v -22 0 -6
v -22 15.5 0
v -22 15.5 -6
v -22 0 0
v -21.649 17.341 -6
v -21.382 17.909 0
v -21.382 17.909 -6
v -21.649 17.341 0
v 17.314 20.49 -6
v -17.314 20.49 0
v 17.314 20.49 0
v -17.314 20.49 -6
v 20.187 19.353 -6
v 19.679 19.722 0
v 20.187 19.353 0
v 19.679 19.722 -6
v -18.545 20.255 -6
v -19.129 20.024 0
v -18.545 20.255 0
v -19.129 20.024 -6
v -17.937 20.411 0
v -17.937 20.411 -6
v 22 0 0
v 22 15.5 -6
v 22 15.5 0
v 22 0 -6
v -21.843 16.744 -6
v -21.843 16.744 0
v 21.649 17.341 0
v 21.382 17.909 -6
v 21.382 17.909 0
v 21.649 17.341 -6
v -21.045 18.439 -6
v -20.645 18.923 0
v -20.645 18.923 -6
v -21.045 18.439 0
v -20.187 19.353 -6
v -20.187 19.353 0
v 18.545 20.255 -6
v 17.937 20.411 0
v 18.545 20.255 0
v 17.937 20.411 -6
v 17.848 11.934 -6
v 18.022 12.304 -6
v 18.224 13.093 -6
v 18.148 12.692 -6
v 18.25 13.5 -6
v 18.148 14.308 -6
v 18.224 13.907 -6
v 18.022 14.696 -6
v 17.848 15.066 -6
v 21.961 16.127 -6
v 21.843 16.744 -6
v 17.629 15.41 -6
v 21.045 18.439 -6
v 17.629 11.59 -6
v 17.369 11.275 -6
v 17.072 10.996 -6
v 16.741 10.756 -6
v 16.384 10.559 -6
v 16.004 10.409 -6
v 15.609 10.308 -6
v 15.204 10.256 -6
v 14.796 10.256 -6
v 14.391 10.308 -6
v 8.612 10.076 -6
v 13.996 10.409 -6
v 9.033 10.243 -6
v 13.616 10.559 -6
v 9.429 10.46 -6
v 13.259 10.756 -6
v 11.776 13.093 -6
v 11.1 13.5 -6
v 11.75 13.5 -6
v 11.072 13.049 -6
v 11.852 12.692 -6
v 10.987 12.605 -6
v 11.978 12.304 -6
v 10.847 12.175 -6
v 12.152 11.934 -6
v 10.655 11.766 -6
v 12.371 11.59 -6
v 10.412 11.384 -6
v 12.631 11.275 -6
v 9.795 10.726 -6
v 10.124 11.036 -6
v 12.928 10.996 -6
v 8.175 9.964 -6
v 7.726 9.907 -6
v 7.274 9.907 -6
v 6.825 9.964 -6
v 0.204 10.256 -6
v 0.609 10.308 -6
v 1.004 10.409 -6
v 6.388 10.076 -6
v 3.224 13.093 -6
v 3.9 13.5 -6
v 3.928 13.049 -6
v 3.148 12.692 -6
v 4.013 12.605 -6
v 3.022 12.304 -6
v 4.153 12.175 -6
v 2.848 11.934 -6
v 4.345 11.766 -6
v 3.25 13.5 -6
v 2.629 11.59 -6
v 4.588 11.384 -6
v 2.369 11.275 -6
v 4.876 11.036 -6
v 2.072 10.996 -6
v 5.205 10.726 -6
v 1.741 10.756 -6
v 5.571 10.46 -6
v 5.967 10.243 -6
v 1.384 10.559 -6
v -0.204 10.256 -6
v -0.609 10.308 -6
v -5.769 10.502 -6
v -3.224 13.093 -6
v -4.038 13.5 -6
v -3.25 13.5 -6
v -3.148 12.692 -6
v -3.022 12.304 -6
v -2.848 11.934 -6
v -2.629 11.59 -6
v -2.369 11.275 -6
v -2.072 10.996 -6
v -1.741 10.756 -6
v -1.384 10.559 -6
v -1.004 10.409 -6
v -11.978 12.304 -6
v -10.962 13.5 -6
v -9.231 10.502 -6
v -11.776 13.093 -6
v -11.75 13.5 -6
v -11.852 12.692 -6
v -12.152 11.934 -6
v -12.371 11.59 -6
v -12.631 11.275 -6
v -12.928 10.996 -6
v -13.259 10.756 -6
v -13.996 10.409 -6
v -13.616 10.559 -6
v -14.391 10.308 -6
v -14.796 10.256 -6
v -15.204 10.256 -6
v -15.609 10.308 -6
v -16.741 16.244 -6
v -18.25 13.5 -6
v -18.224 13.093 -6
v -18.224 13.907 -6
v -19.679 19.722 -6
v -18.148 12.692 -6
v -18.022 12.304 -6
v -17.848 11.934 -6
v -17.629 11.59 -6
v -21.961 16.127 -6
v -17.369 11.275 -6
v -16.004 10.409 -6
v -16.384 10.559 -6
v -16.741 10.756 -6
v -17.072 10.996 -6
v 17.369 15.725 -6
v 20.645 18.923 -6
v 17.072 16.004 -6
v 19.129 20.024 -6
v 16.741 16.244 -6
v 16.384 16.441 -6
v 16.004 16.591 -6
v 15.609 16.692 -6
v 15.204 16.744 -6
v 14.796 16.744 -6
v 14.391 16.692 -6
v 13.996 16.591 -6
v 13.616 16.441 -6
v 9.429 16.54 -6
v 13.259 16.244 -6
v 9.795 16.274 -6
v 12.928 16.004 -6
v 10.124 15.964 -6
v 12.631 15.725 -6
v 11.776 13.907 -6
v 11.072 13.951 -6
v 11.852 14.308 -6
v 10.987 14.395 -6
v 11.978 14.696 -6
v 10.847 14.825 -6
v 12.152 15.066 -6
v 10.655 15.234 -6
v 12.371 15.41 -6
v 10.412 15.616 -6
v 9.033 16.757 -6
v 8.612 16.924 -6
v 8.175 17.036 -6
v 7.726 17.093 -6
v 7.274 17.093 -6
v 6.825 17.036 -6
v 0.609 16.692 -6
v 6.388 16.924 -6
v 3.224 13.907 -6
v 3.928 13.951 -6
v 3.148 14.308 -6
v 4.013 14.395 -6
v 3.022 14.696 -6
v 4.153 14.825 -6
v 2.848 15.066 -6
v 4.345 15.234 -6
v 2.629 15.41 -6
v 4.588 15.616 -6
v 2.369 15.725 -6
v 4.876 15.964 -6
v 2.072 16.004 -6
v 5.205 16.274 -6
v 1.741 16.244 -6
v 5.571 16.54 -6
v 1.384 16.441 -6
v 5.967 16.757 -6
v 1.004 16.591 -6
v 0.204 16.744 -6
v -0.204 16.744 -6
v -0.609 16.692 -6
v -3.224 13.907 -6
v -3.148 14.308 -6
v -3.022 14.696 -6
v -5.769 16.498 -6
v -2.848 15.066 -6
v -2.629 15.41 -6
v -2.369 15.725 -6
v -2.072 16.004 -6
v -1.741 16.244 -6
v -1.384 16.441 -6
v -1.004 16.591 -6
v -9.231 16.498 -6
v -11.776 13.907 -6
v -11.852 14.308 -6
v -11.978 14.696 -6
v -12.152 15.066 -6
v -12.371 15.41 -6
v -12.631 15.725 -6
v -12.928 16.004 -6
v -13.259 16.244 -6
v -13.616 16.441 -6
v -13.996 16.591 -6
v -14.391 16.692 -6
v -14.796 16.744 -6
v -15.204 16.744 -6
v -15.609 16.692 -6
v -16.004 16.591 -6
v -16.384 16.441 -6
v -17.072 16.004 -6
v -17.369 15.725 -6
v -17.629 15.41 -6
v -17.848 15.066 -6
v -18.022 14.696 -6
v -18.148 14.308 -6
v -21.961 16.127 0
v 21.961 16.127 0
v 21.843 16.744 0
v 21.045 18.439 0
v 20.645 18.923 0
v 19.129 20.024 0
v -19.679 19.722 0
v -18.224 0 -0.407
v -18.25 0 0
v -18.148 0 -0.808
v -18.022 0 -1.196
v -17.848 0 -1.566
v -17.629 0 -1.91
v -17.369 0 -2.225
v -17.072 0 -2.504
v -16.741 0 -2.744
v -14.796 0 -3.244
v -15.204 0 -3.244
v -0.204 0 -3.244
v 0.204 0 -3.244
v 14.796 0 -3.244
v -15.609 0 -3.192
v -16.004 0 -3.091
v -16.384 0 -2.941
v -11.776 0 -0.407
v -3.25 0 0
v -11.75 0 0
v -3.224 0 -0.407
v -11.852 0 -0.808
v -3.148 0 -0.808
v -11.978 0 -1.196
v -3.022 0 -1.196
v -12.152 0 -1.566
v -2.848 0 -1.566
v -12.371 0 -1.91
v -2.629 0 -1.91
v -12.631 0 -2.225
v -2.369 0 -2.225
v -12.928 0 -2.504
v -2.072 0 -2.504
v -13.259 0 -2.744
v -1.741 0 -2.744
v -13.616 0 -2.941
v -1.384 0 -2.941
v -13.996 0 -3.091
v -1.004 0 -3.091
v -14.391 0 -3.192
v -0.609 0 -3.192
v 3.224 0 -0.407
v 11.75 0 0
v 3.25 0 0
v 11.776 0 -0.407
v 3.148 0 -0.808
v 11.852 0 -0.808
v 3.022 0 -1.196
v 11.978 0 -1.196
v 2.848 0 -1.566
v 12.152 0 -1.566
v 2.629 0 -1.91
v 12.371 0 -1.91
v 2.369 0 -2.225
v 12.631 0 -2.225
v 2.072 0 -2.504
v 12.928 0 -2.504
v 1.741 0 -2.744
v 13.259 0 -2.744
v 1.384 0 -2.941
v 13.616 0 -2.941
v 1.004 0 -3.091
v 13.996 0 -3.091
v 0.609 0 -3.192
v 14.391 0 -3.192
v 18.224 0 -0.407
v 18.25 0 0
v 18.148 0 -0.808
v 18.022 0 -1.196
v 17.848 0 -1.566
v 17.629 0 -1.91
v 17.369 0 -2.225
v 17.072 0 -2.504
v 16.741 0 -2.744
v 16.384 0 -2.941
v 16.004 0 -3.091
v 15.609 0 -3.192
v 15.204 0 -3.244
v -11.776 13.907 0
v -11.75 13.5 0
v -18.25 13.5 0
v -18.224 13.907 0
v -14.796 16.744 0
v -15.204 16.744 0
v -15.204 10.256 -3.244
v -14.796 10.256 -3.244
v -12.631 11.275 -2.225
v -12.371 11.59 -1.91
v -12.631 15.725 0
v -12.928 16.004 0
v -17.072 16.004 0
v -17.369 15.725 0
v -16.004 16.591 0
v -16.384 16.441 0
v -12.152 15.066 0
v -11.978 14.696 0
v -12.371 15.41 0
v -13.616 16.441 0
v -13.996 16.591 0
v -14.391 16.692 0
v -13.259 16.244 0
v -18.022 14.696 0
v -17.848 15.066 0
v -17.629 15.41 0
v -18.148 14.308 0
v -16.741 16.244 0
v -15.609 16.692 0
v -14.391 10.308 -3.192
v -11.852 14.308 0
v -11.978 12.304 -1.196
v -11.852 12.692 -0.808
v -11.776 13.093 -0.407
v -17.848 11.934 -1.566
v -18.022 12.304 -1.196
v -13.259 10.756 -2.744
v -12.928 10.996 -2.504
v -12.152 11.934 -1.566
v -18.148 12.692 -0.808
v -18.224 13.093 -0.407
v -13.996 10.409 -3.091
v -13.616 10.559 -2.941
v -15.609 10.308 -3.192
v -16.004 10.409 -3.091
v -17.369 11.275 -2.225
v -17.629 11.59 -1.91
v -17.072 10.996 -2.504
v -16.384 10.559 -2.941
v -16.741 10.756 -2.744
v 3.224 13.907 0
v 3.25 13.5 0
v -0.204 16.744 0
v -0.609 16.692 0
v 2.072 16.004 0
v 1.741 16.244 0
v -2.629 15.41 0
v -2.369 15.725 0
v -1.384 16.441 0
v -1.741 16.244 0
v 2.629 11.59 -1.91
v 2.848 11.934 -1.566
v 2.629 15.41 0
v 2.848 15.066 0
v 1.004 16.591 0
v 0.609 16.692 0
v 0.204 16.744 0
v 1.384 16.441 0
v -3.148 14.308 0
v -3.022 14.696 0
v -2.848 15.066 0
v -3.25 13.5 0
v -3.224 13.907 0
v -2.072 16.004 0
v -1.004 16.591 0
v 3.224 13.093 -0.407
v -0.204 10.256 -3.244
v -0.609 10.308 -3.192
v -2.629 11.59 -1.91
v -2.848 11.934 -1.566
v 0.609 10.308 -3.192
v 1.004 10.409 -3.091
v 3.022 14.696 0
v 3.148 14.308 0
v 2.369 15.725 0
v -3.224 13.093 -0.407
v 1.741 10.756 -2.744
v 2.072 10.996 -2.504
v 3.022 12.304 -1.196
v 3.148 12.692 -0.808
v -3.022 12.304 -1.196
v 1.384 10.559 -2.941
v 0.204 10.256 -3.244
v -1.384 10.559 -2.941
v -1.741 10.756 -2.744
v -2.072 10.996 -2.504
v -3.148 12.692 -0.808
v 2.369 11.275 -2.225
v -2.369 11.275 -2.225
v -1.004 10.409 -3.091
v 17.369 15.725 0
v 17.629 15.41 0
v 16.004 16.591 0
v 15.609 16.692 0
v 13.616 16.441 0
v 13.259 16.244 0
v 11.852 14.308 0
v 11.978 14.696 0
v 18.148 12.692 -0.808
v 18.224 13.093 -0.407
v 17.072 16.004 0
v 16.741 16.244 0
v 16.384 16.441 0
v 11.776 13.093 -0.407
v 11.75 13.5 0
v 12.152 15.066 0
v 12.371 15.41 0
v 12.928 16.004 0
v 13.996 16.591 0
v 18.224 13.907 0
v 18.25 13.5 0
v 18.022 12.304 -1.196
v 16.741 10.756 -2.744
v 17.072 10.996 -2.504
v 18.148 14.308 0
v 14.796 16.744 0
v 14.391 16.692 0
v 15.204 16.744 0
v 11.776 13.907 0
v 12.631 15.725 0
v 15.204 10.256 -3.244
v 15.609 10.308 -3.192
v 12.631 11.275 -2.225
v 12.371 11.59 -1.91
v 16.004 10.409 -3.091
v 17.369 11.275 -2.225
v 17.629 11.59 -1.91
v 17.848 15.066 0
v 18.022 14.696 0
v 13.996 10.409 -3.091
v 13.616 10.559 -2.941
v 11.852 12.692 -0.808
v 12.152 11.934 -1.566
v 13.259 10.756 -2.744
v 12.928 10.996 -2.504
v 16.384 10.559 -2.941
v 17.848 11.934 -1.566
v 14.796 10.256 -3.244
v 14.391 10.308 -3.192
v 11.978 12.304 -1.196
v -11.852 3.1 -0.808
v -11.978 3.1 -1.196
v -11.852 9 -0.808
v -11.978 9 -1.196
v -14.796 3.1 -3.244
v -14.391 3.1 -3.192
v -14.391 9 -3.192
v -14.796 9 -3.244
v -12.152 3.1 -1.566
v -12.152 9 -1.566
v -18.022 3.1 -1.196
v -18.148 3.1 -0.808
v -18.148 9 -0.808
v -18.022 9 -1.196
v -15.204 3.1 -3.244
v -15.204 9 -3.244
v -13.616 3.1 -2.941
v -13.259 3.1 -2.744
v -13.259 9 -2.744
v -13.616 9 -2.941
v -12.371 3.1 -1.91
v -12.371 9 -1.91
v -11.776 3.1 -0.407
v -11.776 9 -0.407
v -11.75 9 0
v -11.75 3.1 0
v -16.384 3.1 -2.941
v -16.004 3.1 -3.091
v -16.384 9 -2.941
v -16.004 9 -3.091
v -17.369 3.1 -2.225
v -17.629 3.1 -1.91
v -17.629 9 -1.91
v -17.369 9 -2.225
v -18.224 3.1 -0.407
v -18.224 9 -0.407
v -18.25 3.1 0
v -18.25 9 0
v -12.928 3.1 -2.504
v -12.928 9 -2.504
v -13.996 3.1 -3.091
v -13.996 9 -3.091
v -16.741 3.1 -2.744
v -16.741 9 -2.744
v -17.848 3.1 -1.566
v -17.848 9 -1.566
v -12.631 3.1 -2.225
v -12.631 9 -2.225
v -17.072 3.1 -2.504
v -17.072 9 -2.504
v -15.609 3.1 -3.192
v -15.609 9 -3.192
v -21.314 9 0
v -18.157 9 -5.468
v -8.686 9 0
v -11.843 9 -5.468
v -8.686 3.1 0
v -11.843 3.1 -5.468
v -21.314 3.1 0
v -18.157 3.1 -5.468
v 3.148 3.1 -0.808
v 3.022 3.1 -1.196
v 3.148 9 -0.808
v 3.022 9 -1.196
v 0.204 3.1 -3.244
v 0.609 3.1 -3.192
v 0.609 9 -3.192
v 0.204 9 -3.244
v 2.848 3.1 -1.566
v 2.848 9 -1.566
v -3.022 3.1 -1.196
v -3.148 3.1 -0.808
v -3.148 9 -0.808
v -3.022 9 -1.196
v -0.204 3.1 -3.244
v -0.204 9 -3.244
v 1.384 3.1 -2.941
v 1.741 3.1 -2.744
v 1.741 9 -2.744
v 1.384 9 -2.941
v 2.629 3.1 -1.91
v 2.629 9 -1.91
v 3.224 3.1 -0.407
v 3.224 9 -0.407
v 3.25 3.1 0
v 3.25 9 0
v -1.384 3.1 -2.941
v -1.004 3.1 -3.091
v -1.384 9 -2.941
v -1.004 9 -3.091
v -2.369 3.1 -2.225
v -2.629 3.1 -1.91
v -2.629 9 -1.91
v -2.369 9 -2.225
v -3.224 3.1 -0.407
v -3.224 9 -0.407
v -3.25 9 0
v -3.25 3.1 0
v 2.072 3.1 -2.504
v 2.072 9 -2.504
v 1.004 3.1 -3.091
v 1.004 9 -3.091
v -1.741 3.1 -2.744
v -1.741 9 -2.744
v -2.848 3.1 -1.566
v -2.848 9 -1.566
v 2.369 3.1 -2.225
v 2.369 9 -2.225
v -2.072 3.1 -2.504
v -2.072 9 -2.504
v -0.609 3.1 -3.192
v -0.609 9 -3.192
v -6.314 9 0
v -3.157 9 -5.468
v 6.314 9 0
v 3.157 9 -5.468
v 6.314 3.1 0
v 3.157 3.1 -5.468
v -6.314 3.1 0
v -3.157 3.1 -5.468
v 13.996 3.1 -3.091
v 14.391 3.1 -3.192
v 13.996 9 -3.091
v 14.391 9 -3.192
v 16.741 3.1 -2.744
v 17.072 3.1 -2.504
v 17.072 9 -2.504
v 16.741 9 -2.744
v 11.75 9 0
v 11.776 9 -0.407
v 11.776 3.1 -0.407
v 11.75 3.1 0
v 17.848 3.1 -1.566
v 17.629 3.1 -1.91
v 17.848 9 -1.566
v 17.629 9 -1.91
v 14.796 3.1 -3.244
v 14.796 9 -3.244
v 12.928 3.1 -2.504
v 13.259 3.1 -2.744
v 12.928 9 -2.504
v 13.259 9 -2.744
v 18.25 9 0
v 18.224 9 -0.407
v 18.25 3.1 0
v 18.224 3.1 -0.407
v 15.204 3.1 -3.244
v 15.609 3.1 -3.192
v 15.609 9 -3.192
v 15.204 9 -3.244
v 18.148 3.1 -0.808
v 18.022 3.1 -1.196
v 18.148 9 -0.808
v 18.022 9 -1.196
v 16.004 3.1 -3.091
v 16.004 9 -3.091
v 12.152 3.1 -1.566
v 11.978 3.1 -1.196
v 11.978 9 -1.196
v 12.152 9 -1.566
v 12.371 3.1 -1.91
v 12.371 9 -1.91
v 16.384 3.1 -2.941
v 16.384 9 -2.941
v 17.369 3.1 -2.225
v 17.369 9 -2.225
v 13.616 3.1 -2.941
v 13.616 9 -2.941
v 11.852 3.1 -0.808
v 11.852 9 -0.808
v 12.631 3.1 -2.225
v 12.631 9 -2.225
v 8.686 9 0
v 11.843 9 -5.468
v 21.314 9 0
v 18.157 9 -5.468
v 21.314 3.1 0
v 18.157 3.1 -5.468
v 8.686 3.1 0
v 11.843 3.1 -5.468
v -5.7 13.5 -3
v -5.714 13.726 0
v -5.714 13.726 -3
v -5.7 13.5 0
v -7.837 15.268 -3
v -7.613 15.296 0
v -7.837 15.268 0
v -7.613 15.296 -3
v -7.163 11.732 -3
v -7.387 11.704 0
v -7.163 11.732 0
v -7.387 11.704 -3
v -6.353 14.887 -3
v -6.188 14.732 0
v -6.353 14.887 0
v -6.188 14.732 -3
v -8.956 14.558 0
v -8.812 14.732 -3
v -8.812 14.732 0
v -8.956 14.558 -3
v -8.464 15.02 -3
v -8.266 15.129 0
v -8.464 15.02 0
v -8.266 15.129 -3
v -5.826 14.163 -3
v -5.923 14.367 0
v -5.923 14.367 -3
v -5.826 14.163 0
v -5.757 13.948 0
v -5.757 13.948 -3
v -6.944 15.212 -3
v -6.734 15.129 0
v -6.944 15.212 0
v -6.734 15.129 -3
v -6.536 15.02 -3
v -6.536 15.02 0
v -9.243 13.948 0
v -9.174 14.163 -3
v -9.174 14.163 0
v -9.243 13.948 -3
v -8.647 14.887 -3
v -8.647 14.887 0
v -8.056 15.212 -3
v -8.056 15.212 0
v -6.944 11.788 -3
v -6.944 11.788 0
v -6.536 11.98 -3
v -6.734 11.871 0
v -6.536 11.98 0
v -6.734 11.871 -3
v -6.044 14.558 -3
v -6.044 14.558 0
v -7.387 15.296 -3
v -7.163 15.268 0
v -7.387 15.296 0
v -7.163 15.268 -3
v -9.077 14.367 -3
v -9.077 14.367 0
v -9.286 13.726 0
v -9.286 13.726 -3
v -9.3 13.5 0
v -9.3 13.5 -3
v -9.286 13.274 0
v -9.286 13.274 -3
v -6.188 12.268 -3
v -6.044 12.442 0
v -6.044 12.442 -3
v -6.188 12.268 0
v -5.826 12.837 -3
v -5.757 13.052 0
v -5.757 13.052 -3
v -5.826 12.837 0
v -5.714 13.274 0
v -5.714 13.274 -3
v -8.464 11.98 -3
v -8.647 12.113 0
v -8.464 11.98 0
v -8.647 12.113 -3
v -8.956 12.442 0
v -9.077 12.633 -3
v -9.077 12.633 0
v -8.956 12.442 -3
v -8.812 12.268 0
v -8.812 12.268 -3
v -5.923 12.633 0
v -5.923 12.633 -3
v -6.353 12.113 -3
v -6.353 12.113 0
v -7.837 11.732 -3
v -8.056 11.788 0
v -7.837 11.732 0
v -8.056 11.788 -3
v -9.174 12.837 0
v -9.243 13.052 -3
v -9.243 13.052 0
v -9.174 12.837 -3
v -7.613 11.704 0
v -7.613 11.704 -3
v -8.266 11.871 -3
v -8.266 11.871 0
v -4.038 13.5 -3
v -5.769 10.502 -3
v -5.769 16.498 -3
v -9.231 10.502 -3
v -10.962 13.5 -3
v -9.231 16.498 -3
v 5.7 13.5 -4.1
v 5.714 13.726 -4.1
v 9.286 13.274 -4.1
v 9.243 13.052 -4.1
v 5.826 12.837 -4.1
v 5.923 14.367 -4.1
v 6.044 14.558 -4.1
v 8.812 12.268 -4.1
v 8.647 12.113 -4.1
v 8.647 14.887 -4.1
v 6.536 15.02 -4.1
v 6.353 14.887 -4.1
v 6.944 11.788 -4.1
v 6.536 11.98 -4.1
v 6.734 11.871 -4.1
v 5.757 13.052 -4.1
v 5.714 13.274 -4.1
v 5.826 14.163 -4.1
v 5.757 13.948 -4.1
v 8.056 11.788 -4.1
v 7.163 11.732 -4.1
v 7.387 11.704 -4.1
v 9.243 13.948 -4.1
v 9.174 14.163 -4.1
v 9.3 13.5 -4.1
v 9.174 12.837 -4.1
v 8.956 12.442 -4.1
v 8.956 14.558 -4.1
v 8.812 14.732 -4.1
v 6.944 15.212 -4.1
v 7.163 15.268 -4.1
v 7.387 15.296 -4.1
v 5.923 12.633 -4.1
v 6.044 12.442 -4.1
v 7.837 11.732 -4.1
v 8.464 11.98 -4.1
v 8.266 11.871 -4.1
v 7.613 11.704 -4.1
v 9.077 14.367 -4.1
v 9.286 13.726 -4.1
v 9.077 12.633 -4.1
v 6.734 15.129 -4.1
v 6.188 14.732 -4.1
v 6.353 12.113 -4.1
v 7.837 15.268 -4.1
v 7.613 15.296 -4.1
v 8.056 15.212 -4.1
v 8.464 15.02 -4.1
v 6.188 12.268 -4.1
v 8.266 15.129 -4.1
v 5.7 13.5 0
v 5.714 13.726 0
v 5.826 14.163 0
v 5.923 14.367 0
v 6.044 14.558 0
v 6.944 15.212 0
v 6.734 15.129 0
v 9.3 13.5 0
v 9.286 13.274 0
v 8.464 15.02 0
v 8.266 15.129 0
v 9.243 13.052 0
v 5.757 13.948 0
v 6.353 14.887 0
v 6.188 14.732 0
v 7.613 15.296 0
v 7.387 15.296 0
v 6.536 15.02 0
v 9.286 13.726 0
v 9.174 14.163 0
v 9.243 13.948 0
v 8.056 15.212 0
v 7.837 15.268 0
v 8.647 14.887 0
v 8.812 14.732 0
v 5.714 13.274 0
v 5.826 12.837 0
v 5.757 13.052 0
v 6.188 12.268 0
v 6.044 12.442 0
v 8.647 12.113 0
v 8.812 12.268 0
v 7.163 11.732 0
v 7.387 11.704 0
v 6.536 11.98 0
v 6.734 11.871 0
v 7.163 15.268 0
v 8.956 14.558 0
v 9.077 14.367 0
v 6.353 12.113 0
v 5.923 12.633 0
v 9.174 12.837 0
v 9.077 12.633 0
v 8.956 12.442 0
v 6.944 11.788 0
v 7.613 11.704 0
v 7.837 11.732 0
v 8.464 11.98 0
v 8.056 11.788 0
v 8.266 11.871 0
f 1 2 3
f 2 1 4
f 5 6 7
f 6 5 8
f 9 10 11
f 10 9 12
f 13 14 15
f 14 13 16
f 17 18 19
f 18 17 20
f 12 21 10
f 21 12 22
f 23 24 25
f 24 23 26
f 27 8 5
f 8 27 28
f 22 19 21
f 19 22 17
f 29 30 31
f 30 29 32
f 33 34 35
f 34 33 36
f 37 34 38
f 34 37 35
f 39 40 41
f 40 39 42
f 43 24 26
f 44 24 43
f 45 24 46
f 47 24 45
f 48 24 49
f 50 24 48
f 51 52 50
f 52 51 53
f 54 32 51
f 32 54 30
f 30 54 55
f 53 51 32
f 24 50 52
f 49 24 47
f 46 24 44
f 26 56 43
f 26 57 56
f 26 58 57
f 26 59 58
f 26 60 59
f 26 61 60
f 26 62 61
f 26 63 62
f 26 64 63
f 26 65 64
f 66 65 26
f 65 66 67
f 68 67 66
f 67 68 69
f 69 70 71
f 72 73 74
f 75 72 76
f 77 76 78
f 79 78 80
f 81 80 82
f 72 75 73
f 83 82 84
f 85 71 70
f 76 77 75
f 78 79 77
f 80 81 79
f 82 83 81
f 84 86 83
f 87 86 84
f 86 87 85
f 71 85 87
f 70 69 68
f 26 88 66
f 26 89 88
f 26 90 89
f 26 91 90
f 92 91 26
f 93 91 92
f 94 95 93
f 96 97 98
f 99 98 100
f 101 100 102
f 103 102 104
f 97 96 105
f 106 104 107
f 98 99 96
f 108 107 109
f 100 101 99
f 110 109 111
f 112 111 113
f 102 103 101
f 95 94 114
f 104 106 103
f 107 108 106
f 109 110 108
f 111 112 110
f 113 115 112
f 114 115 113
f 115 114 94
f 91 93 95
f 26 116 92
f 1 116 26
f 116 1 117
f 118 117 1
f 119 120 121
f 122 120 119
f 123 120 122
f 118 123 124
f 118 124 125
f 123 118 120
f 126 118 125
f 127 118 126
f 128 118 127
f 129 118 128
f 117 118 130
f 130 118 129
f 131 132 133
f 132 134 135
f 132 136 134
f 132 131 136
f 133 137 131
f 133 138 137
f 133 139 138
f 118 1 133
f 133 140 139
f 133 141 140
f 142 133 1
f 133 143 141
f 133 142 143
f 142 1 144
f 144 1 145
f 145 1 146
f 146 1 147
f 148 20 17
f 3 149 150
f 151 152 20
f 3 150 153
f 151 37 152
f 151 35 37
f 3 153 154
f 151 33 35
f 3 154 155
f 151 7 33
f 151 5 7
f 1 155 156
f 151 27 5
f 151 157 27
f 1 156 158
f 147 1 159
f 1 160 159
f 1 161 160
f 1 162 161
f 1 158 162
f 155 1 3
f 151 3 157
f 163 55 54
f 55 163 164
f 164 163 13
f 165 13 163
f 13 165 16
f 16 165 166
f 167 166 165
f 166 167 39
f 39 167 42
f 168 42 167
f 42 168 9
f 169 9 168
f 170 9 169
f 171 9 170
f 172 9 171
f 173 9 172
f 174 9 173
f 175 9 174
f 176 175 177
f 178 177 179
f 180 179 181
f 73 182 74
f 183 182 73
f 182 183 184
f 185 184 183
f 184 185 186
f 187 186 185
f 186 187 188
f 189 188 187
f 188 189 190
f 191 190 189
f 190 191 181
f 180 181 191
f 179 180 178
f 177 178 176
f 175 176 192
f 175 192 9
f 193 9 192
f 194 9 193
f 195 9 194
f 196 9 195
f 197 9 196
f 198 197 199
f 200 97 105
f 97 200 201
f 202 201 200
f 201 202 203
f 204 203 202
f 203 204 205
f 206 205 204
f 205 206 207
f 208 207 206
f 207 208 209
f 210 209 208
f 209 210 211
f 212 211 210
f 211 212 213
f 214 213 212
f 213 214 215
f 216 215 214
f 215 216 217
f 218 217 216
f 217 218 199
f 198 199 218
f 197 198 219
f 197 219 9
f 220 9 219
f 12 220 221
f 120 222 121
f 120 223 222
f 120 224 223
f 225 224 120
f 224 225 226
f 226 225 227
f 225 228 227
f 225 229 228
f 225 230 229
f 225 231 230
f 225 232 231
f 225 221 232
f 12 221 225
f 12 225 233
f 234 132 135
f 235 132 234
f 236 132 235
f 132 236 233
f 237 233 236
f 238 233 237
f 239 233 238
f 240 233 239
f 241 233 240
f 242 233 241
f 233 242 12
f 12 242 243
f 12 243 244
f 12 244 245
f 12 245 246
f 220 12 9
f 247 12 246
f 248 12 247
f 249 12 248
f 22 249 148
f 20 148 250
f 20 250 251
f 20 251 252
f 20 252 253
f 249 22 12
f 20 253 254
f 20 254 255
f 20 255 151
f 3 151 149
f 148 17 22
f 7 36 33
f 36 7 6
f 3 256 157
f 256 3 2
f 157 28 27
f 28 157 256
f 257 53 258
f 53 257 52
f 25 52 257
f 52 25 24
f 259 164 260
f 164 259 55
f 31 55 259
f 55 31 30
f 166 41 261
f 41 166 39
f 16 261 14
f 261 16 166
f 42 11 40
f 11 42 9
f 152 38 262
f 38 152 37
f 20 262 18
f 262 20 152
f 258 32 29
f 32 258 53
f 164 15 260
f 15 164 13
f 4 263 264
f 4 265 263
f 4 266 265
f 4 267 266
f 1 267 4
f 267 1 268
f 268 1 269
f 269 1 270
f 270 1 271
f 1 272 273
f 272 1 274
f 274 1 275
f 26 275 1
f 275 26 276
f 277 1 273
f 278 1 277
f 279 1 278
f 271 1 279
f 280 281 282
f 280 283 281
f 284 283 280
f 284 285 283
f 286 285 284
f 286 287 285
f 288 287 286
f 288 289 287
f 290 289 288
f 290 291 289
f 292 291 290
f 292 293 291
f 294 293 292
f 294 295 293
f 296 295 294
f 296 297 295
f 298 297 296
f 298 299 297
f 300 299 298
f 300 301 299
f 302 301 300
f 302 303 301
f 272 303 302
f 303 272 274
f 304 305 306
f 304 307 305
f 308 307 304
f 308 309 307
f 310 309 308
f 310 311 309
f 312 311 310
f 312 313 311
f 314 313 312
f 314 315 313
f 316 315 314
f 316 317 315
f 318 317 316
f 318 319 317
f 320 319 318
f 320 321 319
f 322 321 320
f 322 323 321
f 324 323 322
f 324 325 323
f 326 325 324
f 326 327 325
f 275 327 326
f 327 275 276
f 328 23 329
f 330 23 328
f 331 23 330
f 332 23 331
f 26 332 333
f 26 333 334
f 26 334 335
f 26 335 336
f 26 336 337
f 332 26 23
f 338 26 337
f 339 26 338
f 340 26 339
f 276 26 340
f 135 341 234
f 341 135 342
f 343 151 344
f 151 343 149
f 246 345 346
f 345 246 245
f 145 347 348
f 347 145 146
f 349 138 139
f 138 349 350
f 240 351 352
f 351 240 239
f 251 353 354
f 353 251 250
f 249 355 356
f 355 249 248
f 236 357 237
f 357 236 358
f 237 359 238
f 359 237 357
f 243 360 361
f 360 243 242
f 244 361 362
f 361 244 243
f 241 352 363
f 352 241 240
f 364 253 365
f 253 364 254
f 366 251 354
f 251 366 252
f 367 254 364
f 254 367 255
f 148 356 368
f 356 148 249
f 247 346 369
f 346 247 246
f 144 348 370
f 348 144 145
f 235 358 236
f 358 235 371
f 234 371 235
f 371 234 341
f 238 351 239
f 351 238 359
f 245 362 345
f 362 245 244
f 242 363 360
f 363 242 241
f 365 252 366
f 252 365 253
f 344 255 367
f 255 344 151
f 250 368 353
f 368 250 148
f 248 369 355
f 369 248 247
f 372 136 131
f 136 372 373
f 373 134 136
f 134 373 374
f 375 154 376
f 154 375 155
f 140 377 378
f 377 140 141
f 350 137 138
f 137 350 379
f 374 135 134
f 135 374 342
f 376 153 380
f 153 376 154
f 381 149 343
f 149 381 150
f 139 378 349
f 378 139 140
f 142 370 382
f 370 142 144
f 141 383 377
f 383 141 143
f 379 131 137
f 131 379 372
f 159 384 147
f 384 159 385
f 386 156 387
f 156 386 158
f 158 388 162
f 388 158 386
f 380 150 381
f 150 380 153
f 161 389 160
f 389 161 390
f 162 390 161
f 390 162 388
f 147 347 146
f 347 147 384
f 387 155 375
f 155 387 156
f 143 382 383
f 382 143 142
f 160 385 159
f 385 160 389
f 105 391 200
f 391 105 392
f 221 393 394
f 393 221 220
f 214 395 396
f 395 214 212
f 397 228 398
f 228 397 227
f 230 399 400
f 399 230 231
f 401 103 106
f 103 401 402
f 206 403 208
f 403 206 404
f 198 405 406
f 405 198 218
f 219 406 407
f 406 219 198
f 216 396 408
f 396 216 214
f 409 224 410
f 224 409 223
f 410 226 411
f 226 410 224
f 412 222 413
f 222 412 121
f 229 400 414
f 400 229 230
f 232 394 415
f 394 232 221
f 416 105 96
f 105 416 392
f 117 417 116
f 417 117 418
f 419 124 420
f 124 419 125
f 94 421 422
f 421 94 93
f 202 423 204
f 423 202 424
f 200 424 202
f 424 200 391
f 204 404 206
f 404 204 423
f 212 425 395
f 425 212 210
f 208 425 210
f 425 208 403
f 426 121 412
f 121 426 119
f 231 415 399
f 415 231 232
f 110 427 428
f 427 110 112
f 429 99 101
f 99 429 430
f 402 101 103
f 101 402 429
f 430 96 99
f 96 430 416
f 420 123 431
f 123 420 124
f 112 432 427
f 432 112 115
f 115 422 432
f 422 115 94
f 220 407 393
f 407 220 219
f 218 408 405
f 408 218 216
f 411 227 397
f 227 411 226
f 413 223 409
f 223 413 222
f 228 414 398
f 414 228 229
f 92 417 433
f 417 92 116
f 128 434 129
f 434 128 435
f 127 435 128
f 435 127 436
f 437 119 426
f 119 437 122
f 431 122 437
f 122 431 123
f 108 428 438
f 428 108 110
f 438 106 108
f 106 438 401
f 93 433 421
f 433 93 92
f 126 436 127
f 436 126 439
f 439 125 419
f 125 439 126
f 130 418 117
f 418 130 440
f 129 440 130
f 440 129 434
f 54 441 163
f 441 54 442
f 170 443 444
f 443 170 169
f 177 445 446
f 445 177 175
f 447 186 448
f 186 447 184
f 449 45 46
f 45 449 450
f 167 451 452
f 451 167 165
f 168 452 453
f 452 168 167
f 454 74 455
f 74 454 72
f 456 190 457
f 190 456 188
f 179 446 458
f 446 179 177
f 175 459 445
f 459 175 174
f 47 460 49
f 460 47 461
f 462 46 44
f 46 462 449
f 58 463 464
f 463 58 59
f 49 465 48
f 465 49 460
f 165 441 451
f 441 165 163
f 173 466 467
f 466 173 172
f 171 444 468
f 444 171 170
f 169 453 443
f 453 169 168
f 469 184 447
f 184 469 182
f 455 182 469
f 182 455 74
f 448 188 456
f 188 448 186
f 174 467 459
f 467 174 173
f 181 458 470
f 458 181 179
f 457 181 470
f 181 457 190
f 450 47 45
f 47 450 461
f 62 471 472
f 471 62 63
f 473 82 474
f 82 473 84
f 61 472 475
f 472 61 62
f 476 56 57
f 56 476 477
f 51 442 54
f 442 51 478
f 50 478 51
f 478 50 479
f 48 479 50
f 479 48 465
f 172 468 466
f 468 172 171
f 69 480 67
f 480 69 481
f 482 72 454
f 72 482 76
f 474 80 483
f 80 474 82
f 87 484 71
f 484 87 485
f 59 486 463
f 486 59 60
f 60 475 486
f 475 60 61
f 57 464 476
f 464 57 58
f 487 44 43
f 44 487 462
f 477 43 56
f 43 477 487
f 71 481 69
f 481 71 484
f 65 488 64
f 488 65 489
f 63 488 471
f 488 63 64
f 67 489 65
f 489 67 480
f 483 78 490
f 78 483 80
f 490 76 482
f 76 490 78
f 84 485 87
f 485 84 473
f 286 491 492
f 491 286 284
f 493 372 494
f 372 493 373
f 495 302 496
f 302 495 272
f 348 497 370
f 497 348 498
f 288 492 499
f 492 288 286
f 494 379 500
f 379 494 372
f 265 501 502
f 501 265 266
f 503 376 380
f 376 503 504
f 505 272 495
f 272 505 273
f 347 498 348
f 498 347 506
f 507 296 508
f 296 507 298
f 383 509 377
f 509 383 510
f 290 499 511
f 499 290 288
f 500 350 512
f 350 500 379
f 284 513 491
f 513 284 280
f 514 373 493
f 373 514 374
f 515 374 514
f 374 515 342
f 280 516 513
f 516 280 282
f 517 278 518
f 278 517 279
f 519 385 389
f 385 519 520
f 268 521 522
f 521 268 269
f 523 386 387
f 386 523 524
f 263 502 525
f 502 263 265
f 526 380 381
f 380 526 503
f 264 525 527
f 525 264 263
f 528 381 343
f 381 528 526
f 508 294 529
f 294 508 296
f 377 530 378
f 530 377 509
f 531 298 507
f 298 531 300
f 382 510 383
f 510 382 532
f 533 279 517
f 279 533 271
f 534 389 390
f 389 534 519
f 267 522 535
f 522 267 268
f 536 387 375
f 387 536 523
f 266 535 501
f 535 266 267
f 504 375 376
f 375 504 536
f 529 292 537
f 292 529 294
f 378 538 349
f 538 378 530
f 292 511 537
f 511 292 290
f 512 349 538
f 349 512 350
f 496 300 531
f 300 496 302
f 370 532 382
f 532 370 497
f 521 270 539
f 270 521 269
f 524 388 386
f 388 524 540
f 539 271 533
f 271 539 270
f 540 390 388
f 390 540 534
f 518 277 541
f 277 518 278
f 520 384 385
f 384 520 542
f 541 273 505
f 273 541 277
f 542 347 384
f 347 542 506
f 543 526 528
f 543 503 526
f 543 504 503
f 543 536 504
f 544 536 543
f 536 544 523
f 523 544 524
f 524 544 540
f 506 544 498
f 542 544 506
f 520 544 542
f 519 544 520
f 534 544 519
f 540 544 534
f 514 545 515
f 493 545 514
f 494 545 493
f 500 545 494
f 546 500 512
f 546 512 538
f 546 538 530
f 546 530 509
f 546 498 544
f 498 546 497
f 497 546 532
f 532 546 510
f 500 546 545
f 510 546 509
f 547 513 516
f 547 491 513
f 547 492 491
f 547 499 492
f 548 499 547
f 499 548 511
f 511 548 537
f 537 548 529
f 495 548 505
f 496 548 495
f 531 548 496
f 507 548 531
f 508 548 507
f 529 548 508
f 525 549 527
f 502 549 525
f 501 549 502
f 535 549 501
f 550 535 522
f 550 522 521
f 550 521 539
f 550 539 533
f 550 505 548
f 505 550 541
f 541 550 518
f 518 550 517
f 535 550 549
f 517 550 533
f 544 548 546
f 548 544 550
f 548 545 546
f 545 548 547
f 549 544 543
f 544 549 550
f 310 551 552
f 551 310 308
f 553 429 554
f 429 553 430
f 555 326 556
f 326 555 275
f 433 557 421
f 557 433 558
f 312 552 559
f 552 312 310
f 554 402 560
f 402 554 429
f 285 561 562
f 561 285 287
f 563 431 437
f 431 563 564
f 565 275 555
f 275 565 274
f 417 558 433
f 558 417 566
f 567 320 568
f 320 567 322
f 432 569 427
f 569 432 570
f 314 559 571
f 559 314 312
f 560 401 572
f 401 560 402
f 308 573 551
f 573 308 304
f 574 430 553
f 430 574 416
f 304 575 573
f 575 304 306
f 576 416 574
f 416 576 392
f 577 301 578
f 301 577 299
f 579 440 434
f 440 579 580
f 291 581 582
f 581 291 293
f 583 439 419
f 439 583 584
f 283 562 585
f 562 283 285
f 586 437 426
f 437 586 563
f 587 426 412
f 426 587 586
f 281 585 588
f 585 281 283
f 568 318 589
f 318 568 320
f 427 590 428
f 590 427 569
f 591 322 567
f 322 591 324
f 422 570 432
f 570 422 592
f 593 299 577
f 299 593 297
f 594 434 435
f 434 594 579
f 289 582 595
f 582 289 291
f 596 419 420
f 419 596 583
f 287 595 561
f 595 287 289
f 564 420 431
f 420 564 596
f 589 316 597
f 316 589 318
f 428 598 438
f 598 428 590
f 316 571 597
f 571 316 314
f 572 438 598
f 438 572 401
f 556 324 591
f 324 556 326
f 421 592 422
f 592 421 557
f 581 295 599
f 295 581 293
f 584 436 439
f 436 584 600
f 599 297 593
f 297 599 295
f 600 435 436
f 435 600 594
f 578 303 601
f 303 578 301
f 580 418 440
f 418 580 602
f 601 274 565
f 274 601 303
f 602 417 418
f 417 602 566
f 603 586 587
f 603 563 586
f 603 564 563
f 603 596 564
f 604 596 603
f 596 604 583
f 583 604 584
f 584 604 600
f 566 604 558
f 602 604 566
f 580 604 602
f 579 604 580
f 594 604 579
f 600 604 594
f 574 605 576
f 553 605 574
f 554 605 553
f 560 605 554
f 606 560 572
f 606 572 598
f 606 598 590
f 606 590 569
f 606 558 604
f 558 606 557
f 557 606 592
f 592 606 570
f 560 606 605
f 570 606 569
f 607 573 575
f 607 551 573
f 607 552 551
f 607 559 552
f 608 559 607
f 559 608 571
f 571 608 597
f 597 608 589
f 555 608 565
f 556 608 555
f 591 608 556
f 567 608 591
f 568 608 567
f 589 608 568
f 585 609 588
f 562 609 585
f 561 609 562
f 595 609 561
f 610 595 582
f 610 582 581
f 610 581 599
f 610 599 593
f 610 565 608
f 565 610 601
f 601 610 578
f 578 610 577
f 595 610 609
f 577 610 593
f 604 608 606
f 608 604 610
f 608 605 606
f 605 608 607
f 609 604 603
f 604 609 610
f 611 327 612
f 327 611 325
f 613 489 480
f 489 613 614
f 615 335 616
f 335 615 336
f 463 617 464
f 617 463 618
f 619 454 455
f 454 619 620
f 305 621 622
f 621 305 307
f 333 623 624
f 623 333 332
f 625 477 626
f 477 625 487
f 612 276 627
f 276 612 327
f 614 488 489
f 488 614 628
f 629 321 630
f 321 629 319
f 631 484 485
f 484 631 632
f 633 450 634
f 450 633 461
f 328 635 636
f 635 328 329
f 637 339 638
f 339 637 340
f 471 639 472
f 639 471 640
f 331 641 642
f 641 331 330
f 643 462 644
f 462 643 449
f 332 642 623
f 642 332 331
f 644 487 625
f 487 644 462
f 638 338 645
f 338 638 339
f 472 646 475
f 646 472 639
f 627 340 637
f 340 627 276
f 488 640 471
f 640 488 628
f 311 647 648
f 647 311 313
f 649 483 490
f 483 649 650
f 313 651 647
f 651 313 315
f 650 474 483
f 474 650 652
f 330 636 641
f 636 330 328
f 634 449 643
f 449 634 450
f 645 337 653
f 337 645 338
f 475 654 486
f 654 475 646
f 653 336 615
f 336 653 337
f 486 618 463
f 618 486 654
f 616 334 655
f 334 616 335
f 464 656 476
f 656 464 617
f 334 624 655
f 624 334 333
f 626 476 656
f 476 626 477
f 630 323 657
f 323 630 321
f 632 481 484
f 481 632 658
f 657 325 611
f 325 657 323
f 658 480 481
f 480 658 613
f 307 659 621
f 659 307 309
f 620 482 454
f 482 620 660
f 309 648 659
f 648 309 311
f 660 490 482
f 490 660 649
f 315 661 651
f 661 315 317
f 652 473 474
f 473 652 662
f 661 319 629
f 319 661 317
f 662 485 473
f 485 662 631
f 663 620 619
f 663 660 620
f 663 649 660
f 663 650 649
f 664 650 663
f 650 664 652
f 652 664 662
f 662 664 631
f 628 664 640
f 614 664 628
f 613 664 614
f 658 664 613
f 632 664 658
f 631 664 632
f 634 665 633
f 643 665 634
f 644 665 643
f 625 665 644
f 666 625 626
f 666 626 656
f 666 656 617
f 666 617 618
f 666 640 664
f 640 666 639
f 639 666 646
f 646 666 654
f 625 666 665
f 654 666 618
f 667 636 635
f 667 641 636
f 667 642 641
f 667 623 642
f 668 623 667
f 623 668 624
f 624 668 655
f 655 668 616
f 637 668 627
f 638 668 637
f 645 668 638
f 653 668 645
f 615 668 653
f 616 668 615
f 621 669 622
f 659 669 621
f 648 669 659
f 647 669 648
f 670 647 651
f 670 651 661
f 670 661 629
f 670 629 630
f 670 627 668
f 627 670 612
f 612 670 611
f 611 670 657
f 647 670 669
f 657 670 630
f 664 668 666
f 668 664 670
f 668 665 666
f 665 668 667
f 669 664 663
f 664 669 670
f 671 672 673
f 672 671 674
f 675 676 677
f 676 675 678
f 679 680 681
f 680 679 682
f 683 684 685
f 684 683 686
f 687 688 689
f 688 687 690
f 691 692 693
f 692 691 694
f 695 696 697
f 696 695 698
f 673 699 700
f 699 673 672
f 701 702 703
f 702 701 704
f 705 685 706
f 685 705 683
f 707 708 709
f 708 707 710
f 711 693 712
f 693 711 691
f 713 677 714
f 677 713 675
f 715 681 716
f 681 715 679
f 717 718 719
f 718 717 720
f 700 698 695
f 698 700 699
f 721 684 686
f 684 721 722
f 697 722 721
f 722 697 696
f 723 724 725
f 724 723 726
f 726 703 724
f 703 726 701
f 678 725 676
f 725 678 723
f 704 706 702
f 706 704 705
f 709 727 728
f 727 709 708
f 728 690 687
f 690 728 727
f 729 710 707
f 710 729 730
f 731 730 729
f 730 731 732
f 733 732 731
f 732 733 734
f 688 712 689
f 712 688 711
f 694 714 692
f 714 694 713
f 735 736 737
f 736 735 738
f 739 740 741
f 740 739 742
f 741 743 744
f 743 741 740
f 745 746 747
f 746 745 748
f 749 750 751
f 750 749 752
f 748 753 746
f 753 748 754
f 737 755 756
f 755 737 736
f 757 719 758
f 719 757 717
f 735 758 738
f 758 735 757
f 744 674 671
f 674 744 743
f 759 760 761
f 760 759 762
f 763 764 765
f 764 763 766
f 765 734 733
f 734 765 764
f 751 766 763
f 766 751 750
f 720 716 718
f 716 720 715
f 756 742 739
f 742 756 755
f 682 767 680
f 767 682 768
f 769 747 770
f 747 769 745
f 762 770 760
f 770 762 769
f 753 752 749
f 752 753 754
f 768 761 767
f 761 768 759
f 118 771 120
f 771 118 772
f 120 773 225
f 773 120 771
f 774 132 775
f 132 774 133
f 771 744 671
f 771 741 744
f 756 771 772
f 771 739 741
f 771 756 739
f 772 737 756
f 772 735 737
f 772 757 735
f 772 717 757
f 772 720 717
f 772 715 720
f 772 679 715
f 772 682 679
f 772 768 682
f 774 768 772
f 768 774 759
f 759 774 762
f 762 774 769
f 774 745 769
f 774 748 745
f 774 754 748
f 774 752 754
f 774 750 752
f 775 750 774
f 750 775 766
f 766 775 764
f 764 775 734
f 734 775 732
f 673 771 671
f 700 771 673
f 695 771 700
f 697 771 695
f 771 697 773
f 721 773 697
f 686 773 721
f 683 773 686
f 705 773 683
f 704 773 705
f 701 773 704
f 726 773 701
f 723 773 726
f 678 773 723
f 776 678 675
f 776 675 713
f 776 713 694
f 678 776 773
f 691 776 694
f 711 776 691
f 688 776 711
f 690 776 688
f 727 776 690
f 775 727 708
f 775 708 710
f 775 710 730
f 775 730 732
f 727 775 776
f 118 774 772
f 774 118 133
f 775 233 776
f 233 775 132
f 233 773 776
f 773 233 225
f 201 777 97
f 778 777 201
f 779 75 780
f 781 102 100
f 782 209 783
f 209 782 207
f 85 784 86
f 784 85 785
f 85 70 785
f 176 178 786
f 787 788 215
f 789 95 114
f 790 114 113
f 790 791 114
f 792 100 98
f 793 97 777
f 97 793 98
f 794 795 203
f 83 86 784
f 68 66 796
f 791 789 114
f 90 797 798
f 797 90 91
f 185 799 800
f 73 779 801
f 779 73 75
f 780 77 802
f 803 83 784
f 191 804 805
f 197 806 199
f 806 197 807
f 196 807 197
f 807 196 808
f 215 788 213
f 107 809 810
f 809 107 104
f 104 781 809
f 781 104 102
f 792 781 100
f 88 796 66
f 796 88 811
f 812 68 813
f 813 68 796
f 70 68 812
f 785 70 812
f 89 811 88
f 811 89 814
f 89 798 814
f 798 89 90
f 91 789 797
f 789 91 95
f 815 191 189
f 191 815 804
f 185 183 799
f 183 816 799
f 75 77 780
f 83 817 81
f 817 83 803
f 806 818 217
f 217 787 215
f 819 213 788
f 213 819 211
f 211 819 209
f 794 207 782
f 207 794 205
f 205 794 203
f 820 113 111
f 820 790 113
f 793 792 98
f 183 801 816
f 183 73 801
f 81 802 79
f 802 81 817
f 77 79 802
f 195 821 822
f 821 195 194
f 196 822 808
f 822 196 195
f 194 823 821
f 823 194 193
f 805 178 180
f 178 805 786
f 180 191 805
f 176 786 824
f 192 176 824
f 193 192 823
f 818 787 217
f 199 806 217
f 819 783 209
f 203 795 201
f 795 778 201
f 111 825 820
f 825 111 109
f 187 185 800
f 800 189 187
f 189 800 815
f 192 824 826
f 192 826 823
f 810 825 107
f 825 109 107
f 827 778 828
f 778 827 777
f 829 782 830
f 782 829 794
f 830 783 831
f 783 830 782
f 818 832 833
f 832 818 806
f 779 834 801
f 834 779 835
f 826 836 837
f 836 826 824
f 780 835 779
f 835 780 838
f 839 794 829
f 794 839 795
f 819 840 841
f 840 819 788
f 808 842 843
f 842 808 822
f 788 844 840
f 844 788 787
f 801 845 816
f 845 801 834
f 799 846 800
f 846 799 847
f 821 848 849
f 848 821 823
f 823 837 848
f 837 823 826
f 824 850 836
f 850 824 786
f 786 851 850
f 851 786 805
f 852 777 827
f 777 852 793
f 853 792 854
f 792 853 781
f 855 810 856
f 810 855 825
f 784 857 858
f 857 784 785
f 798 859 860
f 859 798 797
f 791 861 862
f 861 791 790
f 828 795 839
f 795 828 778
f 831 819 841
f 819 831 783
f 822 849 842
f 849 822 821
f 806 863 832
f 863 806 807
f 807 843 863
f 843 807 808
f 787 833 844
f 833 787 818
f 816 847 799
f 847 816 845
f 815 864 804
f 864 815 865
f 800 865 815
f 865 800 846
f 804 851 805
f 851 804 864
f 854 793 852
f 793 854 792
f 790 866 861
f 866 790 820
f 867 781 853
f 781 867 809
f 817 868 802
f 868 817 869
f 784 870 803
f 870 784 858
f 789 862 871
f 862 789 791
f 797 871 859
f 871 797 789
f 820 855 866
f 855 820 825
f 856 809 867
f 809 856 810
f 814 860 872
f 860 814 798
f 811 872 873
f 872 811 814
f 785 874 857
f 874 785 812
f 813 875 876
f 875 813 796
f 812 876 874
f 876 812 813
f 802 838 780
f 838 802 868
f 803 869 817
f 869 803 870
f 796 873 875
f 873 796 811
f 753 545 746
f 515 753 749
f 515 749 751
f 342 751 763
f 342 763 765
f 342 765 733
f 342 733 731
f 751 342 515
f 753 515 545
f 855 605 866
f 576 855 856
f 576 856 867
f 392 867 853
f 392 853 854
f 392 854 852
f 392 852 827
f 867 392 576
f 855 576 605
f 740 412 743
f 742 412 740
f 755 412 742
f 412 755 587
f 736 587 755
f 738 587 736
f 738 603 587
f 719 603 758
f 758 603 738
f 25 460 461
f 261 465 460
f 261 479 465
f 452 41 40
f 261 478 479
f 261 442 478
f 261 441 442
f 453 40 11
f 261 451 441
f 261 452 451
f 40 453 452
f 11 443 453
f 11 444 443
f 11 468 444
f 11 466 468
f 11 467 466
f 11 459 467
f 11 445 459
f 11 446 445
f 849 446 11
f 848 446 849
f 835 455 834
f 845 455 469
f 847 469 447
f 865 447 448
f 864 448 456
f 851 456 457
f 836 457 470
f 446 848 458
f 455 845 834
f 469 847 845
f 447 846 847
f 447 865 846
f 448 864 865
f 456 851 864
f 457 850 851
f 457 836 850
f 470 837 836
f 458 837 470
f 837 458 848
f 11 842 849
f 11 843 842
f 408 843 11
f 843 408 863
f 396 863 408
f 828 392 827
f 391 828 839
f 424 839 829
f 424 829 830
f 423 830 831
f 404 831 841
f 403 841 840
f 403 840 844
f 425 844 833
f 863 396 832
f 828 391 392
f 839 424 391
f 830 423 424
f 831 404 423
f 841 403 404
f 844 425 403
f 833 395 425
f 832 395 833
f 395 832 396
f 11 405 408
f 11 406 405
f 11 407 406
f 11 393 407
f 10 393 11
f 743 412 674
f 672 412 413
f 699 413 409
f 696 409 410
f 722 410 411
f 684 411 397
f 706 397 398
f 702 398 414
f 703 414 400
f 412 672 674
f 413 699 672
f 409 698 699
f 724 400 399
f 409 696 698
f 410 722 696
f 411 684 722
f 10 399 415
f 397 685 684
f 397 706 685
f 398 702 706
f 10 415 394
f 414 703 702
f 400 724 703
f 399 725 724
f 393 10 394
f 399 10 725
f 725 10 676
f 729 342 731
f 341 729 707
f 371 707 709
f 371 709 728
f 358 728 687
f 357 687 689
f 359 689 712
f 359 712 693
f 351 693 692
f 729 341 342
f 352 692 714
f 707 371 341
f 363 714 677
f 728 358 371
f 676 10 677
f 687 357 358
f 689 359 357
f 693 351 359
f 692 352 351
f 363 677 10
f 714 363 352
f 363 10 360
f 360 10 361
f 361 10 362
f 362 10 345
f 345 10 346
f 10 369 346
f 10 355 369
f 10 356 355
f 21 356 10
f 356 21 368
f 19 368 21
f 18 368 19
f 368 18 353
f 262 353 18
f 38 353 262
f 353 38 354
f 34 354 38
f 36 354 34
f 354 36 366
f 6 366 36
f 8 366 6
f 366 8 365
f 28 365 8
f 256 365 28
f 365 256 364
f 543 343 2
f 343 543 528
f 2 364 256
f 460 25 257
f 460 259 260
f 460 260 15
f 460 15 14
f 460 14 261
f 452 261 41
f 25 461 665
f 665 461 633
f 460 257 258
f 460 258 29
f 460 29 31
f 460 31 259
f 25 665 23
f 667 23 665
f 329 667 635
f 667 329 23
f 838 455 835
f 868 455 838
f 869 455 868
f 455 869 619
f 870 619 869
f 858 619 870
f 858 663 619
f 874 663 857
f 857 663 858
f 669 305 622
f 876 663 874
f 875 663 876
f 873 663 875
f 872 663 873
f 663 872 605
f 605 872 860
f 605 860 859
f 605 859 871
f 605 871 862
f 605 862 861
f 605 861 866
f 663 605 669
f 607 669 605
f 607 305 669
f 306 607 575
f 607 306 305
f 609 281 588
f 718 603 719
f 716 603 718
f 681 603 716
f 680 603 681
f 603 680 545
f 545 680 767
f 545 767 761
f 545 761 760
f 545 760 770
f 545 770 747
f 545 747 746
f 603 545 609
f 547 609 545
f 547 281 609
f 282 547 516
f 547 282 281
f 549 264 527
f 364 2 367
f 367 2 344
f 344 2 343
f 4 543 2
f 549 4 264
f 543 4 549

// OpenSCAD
$fn = 50;


difference() {
	union() {
		translate(v = [0, 13.5000000000, -6.0000000000]) {
			rotate(a = [0, 0, 0]) {
				hull() {
					translate(v = [-17.0000000000, 2.0000000000, 0]) {
						rotate(a = [0, 0, 0]) {
							translate(v = [0, 0, 0]) {
								rotate(a = [0, 0, 0]) {
									cylinder(h = 12, r = 5);
								}
							}
						}
					}
					translate(v = [17.0000000000, 2.0000000000, 0]) {
						rotate(a = [0, 0, 0]) {
							translate(v = [0, 0, 0]) {
								rotate(a = [0, 0, 0]) {
									cylinder(h = 12, r = 5);
								}
							}
						}
					}
					translate(v = [-17.0000000000, -2.0000000000, 0]) {
						rotate(a = [0, 0, 0]) {
							translate(v = [0, 0, 0]) {
								rotate(a = [0, 0, 0]) {
									cylinder(h = 12, r = 5);
								}
							}
						}
					}
					translate(v = [17.0000000000, -2.0000000000, 0]) {
						rotate(a = [0, 0, 0]) {
							translate(v = [0, 0, 0]) {
								rotate(a = [0, 0, 0]) {
									cylinder(h = 12, r = 5);
								}
							}
						}
					}
				}
			}
		}
		translate(v = [-22.0000000000, 0, -6.0000000000]) {
			rotate(a = [0, 0, 0]) {
				cube(size = [44, 13.5000000000, 12]);
			}
		}
	}
	union() {
		translate(v = [-15.0000000000, 13.5000000000, -6.0000000000]) {
			rotate(a = [0, 0, 0]) {
				translate(v = [0, 0, -50]) {
					rotate(a = [0, 0, 0]) {
						cylinder(h = 100, r = 3.2500000000);
					}
				}
			}
		}
		translate(v = [0.0000000000, 13.5000000000, -6.0000000000]) {
			rotate(a = [0, 0, 0]) {
				translate(v = [0, 0, -50]) {
					rotate(a = [0, 0, 0]) {
						cylinder(h = 100, r = 3.2500000000);
					}
				}
			}
		}
		translate(v = [15.0000000000, 13.5000000000, -6.0000000000]) {
			rotate(a = [0, 0, 0]) {
				translate(v = [0, 0, -50]) {
					rotate(a = [0, 0, 0]) {
						cylinder(h = 100, r = 3.2500000000);
					}
				}
			}
		}
		translate(v = [-15.0000000000, 13.5000000000, 0]) {
			rotate(a = [90, 0, 0]) {
				cylinder(h = 13.5000000000, r = 3.2500000000);
			}
		}
		translate(v = [-15.0000000000, 9, 0]) {
			rotate(a = [90, 0, 0]) {
				translate(v = [0, 0, 0]) {
					rotate(a = [0, 0, 0]) {
						linear_extrude(height = 5.9000000000) {
							polygon(points = [[6.3142500000, 0.0000000000], [3.1571250000, 5.4683009058], [-3.1571250000, 5.4683009058], [-6.3142500000, 0.0000000000], [-3.1571250000, -5.4683009058], [3.1571250000, -5.4683009058]]);
						}
					}
				}
			}
		}
		translate(v = [0.0000000000, 13.5000000000, 0]) {
			rotate(a = [90, 0, 0]) {
				cylinder(h = 13.5000000000, r = 3.2500000000);
			}
		}
		translate(v = [0.0000000000, 9, 0]) {
			rotate(a = [90, 0, 0]) {
				translate(v = [0, 0, 0]) {
					rotate(a = [0, 0, 0]) {
						linear_extrude(height = 5.9000000000) {
							polygon(points = [[6.3142500000, 0.0000000000], [3.1571250000, 5.4683009058], [-3.1571250000, 5.4683009058], [-6.3142500000, 0.0000000000], [-3.1571250000, -5.4683009058], [3.1571250000, -5.4683009058]]);
						}
					}
				}
			}
		}
		translate(v = [15.0000000000, 13.5000000000, 0]) {
			rotate(a = [90, 0, 0]) {
				cylinder(h = 13.5000000000, r = 3.2500000000);
			}
		}
		translate(v = [15.0000000000, 9, 0]) {
			rotate(a = [90, 0, 0]) {
				translate(v = [0, 0, 0]) {
					rotate(a = [0, 0, 0]) {
						linear_extrude(height = 5.9000000000) {
							polygon(points = [[6.3142500000, 0.0000000000], [3.1571250000, 5.4683009058], [-3.1571250000, 5.4683009058], [-6.3142500000, 0.0000000000], [-3.1571250000, -5.4683009058], [3.1571250000, -5.4683009058]]);
						}
					}
				}
			}
		}
		translate(v = [-7.5000000000, 13.5000000000, 4.1000000000]) {
			rotate(a = [0, 0, 0]) {
				cylinder(h = 1.9000000000, r1 = 1.8000000000, r2 = 3.6000000000);
			}
		}
		translate(v = [-7.5000000000, 13.5000000000, -6.0000000000]) {
			rotate(a = [0, 0, 0]) {
				cylinder(h = 12, r = 1.8000000000);
			}
		}
		translate(v = [-7.5000000000, 13.5000000000, -6.0000000000]) {
			rotate(a = [0, 0, 0]) {
				translate(v = [0, 0, 0]) {
					rotate(a = [0, 0, 0]) {
						linear_extrude(height = 3) {
							polygon(points = [[3.4620000000, 0.0000000000], [1.7310000000, 2.9981799479], [-1.7310000000, 2.9981799479], [-3.4620000000, 0.0000000000], [-1.7310000000, -2.9981799479], [1.7310000000, -2.9981799479]]);
						}
					}
				}
			}
		}
		translate(v = [7.5000000000, 13.5000000000, -4.1000000000]) {
			rotate(a = [0, 180, 0]) {
				cylinder(h = 1.9000000000, r1 = 1.8000000000, r2 = 3.6000000000);
			}
		}
		translate(v = [7.5000000000, 13.5000000000, 6.0000000000]) {
			rotate(a = [0, 180, 0]) {
				cylinder(h = 12, r = 1.8000000000);
			}
		}
		translate(v = [7.5000000000, 13.5000000000, 6.0000000000]) {
			rotate(a = [0, 180, 0]) {
				translate(v = [0, 0, 0]) {
					rotate(a = [0, 0, 0]) {
						linear_extrude(height = 3) {
							polygon(points = [[3.4620000000, 0.0000000000], [1.7310000000, 2.9981799479], [-1.7310000000, 2.9981799479], [-3.4620000000, 0.0000000000], [-1.7310000000, -2.9981799479], [1.7310000000, -2.9981799479]]);
						}
					}
				}
			}
		}
		translate(v = [-250.0000000000, -250.0000000000, 0]) {
			rotate(a = [0, 0, 0]) {
				cube(size = [500, 500, 500]);
			}
		}
	}
}
